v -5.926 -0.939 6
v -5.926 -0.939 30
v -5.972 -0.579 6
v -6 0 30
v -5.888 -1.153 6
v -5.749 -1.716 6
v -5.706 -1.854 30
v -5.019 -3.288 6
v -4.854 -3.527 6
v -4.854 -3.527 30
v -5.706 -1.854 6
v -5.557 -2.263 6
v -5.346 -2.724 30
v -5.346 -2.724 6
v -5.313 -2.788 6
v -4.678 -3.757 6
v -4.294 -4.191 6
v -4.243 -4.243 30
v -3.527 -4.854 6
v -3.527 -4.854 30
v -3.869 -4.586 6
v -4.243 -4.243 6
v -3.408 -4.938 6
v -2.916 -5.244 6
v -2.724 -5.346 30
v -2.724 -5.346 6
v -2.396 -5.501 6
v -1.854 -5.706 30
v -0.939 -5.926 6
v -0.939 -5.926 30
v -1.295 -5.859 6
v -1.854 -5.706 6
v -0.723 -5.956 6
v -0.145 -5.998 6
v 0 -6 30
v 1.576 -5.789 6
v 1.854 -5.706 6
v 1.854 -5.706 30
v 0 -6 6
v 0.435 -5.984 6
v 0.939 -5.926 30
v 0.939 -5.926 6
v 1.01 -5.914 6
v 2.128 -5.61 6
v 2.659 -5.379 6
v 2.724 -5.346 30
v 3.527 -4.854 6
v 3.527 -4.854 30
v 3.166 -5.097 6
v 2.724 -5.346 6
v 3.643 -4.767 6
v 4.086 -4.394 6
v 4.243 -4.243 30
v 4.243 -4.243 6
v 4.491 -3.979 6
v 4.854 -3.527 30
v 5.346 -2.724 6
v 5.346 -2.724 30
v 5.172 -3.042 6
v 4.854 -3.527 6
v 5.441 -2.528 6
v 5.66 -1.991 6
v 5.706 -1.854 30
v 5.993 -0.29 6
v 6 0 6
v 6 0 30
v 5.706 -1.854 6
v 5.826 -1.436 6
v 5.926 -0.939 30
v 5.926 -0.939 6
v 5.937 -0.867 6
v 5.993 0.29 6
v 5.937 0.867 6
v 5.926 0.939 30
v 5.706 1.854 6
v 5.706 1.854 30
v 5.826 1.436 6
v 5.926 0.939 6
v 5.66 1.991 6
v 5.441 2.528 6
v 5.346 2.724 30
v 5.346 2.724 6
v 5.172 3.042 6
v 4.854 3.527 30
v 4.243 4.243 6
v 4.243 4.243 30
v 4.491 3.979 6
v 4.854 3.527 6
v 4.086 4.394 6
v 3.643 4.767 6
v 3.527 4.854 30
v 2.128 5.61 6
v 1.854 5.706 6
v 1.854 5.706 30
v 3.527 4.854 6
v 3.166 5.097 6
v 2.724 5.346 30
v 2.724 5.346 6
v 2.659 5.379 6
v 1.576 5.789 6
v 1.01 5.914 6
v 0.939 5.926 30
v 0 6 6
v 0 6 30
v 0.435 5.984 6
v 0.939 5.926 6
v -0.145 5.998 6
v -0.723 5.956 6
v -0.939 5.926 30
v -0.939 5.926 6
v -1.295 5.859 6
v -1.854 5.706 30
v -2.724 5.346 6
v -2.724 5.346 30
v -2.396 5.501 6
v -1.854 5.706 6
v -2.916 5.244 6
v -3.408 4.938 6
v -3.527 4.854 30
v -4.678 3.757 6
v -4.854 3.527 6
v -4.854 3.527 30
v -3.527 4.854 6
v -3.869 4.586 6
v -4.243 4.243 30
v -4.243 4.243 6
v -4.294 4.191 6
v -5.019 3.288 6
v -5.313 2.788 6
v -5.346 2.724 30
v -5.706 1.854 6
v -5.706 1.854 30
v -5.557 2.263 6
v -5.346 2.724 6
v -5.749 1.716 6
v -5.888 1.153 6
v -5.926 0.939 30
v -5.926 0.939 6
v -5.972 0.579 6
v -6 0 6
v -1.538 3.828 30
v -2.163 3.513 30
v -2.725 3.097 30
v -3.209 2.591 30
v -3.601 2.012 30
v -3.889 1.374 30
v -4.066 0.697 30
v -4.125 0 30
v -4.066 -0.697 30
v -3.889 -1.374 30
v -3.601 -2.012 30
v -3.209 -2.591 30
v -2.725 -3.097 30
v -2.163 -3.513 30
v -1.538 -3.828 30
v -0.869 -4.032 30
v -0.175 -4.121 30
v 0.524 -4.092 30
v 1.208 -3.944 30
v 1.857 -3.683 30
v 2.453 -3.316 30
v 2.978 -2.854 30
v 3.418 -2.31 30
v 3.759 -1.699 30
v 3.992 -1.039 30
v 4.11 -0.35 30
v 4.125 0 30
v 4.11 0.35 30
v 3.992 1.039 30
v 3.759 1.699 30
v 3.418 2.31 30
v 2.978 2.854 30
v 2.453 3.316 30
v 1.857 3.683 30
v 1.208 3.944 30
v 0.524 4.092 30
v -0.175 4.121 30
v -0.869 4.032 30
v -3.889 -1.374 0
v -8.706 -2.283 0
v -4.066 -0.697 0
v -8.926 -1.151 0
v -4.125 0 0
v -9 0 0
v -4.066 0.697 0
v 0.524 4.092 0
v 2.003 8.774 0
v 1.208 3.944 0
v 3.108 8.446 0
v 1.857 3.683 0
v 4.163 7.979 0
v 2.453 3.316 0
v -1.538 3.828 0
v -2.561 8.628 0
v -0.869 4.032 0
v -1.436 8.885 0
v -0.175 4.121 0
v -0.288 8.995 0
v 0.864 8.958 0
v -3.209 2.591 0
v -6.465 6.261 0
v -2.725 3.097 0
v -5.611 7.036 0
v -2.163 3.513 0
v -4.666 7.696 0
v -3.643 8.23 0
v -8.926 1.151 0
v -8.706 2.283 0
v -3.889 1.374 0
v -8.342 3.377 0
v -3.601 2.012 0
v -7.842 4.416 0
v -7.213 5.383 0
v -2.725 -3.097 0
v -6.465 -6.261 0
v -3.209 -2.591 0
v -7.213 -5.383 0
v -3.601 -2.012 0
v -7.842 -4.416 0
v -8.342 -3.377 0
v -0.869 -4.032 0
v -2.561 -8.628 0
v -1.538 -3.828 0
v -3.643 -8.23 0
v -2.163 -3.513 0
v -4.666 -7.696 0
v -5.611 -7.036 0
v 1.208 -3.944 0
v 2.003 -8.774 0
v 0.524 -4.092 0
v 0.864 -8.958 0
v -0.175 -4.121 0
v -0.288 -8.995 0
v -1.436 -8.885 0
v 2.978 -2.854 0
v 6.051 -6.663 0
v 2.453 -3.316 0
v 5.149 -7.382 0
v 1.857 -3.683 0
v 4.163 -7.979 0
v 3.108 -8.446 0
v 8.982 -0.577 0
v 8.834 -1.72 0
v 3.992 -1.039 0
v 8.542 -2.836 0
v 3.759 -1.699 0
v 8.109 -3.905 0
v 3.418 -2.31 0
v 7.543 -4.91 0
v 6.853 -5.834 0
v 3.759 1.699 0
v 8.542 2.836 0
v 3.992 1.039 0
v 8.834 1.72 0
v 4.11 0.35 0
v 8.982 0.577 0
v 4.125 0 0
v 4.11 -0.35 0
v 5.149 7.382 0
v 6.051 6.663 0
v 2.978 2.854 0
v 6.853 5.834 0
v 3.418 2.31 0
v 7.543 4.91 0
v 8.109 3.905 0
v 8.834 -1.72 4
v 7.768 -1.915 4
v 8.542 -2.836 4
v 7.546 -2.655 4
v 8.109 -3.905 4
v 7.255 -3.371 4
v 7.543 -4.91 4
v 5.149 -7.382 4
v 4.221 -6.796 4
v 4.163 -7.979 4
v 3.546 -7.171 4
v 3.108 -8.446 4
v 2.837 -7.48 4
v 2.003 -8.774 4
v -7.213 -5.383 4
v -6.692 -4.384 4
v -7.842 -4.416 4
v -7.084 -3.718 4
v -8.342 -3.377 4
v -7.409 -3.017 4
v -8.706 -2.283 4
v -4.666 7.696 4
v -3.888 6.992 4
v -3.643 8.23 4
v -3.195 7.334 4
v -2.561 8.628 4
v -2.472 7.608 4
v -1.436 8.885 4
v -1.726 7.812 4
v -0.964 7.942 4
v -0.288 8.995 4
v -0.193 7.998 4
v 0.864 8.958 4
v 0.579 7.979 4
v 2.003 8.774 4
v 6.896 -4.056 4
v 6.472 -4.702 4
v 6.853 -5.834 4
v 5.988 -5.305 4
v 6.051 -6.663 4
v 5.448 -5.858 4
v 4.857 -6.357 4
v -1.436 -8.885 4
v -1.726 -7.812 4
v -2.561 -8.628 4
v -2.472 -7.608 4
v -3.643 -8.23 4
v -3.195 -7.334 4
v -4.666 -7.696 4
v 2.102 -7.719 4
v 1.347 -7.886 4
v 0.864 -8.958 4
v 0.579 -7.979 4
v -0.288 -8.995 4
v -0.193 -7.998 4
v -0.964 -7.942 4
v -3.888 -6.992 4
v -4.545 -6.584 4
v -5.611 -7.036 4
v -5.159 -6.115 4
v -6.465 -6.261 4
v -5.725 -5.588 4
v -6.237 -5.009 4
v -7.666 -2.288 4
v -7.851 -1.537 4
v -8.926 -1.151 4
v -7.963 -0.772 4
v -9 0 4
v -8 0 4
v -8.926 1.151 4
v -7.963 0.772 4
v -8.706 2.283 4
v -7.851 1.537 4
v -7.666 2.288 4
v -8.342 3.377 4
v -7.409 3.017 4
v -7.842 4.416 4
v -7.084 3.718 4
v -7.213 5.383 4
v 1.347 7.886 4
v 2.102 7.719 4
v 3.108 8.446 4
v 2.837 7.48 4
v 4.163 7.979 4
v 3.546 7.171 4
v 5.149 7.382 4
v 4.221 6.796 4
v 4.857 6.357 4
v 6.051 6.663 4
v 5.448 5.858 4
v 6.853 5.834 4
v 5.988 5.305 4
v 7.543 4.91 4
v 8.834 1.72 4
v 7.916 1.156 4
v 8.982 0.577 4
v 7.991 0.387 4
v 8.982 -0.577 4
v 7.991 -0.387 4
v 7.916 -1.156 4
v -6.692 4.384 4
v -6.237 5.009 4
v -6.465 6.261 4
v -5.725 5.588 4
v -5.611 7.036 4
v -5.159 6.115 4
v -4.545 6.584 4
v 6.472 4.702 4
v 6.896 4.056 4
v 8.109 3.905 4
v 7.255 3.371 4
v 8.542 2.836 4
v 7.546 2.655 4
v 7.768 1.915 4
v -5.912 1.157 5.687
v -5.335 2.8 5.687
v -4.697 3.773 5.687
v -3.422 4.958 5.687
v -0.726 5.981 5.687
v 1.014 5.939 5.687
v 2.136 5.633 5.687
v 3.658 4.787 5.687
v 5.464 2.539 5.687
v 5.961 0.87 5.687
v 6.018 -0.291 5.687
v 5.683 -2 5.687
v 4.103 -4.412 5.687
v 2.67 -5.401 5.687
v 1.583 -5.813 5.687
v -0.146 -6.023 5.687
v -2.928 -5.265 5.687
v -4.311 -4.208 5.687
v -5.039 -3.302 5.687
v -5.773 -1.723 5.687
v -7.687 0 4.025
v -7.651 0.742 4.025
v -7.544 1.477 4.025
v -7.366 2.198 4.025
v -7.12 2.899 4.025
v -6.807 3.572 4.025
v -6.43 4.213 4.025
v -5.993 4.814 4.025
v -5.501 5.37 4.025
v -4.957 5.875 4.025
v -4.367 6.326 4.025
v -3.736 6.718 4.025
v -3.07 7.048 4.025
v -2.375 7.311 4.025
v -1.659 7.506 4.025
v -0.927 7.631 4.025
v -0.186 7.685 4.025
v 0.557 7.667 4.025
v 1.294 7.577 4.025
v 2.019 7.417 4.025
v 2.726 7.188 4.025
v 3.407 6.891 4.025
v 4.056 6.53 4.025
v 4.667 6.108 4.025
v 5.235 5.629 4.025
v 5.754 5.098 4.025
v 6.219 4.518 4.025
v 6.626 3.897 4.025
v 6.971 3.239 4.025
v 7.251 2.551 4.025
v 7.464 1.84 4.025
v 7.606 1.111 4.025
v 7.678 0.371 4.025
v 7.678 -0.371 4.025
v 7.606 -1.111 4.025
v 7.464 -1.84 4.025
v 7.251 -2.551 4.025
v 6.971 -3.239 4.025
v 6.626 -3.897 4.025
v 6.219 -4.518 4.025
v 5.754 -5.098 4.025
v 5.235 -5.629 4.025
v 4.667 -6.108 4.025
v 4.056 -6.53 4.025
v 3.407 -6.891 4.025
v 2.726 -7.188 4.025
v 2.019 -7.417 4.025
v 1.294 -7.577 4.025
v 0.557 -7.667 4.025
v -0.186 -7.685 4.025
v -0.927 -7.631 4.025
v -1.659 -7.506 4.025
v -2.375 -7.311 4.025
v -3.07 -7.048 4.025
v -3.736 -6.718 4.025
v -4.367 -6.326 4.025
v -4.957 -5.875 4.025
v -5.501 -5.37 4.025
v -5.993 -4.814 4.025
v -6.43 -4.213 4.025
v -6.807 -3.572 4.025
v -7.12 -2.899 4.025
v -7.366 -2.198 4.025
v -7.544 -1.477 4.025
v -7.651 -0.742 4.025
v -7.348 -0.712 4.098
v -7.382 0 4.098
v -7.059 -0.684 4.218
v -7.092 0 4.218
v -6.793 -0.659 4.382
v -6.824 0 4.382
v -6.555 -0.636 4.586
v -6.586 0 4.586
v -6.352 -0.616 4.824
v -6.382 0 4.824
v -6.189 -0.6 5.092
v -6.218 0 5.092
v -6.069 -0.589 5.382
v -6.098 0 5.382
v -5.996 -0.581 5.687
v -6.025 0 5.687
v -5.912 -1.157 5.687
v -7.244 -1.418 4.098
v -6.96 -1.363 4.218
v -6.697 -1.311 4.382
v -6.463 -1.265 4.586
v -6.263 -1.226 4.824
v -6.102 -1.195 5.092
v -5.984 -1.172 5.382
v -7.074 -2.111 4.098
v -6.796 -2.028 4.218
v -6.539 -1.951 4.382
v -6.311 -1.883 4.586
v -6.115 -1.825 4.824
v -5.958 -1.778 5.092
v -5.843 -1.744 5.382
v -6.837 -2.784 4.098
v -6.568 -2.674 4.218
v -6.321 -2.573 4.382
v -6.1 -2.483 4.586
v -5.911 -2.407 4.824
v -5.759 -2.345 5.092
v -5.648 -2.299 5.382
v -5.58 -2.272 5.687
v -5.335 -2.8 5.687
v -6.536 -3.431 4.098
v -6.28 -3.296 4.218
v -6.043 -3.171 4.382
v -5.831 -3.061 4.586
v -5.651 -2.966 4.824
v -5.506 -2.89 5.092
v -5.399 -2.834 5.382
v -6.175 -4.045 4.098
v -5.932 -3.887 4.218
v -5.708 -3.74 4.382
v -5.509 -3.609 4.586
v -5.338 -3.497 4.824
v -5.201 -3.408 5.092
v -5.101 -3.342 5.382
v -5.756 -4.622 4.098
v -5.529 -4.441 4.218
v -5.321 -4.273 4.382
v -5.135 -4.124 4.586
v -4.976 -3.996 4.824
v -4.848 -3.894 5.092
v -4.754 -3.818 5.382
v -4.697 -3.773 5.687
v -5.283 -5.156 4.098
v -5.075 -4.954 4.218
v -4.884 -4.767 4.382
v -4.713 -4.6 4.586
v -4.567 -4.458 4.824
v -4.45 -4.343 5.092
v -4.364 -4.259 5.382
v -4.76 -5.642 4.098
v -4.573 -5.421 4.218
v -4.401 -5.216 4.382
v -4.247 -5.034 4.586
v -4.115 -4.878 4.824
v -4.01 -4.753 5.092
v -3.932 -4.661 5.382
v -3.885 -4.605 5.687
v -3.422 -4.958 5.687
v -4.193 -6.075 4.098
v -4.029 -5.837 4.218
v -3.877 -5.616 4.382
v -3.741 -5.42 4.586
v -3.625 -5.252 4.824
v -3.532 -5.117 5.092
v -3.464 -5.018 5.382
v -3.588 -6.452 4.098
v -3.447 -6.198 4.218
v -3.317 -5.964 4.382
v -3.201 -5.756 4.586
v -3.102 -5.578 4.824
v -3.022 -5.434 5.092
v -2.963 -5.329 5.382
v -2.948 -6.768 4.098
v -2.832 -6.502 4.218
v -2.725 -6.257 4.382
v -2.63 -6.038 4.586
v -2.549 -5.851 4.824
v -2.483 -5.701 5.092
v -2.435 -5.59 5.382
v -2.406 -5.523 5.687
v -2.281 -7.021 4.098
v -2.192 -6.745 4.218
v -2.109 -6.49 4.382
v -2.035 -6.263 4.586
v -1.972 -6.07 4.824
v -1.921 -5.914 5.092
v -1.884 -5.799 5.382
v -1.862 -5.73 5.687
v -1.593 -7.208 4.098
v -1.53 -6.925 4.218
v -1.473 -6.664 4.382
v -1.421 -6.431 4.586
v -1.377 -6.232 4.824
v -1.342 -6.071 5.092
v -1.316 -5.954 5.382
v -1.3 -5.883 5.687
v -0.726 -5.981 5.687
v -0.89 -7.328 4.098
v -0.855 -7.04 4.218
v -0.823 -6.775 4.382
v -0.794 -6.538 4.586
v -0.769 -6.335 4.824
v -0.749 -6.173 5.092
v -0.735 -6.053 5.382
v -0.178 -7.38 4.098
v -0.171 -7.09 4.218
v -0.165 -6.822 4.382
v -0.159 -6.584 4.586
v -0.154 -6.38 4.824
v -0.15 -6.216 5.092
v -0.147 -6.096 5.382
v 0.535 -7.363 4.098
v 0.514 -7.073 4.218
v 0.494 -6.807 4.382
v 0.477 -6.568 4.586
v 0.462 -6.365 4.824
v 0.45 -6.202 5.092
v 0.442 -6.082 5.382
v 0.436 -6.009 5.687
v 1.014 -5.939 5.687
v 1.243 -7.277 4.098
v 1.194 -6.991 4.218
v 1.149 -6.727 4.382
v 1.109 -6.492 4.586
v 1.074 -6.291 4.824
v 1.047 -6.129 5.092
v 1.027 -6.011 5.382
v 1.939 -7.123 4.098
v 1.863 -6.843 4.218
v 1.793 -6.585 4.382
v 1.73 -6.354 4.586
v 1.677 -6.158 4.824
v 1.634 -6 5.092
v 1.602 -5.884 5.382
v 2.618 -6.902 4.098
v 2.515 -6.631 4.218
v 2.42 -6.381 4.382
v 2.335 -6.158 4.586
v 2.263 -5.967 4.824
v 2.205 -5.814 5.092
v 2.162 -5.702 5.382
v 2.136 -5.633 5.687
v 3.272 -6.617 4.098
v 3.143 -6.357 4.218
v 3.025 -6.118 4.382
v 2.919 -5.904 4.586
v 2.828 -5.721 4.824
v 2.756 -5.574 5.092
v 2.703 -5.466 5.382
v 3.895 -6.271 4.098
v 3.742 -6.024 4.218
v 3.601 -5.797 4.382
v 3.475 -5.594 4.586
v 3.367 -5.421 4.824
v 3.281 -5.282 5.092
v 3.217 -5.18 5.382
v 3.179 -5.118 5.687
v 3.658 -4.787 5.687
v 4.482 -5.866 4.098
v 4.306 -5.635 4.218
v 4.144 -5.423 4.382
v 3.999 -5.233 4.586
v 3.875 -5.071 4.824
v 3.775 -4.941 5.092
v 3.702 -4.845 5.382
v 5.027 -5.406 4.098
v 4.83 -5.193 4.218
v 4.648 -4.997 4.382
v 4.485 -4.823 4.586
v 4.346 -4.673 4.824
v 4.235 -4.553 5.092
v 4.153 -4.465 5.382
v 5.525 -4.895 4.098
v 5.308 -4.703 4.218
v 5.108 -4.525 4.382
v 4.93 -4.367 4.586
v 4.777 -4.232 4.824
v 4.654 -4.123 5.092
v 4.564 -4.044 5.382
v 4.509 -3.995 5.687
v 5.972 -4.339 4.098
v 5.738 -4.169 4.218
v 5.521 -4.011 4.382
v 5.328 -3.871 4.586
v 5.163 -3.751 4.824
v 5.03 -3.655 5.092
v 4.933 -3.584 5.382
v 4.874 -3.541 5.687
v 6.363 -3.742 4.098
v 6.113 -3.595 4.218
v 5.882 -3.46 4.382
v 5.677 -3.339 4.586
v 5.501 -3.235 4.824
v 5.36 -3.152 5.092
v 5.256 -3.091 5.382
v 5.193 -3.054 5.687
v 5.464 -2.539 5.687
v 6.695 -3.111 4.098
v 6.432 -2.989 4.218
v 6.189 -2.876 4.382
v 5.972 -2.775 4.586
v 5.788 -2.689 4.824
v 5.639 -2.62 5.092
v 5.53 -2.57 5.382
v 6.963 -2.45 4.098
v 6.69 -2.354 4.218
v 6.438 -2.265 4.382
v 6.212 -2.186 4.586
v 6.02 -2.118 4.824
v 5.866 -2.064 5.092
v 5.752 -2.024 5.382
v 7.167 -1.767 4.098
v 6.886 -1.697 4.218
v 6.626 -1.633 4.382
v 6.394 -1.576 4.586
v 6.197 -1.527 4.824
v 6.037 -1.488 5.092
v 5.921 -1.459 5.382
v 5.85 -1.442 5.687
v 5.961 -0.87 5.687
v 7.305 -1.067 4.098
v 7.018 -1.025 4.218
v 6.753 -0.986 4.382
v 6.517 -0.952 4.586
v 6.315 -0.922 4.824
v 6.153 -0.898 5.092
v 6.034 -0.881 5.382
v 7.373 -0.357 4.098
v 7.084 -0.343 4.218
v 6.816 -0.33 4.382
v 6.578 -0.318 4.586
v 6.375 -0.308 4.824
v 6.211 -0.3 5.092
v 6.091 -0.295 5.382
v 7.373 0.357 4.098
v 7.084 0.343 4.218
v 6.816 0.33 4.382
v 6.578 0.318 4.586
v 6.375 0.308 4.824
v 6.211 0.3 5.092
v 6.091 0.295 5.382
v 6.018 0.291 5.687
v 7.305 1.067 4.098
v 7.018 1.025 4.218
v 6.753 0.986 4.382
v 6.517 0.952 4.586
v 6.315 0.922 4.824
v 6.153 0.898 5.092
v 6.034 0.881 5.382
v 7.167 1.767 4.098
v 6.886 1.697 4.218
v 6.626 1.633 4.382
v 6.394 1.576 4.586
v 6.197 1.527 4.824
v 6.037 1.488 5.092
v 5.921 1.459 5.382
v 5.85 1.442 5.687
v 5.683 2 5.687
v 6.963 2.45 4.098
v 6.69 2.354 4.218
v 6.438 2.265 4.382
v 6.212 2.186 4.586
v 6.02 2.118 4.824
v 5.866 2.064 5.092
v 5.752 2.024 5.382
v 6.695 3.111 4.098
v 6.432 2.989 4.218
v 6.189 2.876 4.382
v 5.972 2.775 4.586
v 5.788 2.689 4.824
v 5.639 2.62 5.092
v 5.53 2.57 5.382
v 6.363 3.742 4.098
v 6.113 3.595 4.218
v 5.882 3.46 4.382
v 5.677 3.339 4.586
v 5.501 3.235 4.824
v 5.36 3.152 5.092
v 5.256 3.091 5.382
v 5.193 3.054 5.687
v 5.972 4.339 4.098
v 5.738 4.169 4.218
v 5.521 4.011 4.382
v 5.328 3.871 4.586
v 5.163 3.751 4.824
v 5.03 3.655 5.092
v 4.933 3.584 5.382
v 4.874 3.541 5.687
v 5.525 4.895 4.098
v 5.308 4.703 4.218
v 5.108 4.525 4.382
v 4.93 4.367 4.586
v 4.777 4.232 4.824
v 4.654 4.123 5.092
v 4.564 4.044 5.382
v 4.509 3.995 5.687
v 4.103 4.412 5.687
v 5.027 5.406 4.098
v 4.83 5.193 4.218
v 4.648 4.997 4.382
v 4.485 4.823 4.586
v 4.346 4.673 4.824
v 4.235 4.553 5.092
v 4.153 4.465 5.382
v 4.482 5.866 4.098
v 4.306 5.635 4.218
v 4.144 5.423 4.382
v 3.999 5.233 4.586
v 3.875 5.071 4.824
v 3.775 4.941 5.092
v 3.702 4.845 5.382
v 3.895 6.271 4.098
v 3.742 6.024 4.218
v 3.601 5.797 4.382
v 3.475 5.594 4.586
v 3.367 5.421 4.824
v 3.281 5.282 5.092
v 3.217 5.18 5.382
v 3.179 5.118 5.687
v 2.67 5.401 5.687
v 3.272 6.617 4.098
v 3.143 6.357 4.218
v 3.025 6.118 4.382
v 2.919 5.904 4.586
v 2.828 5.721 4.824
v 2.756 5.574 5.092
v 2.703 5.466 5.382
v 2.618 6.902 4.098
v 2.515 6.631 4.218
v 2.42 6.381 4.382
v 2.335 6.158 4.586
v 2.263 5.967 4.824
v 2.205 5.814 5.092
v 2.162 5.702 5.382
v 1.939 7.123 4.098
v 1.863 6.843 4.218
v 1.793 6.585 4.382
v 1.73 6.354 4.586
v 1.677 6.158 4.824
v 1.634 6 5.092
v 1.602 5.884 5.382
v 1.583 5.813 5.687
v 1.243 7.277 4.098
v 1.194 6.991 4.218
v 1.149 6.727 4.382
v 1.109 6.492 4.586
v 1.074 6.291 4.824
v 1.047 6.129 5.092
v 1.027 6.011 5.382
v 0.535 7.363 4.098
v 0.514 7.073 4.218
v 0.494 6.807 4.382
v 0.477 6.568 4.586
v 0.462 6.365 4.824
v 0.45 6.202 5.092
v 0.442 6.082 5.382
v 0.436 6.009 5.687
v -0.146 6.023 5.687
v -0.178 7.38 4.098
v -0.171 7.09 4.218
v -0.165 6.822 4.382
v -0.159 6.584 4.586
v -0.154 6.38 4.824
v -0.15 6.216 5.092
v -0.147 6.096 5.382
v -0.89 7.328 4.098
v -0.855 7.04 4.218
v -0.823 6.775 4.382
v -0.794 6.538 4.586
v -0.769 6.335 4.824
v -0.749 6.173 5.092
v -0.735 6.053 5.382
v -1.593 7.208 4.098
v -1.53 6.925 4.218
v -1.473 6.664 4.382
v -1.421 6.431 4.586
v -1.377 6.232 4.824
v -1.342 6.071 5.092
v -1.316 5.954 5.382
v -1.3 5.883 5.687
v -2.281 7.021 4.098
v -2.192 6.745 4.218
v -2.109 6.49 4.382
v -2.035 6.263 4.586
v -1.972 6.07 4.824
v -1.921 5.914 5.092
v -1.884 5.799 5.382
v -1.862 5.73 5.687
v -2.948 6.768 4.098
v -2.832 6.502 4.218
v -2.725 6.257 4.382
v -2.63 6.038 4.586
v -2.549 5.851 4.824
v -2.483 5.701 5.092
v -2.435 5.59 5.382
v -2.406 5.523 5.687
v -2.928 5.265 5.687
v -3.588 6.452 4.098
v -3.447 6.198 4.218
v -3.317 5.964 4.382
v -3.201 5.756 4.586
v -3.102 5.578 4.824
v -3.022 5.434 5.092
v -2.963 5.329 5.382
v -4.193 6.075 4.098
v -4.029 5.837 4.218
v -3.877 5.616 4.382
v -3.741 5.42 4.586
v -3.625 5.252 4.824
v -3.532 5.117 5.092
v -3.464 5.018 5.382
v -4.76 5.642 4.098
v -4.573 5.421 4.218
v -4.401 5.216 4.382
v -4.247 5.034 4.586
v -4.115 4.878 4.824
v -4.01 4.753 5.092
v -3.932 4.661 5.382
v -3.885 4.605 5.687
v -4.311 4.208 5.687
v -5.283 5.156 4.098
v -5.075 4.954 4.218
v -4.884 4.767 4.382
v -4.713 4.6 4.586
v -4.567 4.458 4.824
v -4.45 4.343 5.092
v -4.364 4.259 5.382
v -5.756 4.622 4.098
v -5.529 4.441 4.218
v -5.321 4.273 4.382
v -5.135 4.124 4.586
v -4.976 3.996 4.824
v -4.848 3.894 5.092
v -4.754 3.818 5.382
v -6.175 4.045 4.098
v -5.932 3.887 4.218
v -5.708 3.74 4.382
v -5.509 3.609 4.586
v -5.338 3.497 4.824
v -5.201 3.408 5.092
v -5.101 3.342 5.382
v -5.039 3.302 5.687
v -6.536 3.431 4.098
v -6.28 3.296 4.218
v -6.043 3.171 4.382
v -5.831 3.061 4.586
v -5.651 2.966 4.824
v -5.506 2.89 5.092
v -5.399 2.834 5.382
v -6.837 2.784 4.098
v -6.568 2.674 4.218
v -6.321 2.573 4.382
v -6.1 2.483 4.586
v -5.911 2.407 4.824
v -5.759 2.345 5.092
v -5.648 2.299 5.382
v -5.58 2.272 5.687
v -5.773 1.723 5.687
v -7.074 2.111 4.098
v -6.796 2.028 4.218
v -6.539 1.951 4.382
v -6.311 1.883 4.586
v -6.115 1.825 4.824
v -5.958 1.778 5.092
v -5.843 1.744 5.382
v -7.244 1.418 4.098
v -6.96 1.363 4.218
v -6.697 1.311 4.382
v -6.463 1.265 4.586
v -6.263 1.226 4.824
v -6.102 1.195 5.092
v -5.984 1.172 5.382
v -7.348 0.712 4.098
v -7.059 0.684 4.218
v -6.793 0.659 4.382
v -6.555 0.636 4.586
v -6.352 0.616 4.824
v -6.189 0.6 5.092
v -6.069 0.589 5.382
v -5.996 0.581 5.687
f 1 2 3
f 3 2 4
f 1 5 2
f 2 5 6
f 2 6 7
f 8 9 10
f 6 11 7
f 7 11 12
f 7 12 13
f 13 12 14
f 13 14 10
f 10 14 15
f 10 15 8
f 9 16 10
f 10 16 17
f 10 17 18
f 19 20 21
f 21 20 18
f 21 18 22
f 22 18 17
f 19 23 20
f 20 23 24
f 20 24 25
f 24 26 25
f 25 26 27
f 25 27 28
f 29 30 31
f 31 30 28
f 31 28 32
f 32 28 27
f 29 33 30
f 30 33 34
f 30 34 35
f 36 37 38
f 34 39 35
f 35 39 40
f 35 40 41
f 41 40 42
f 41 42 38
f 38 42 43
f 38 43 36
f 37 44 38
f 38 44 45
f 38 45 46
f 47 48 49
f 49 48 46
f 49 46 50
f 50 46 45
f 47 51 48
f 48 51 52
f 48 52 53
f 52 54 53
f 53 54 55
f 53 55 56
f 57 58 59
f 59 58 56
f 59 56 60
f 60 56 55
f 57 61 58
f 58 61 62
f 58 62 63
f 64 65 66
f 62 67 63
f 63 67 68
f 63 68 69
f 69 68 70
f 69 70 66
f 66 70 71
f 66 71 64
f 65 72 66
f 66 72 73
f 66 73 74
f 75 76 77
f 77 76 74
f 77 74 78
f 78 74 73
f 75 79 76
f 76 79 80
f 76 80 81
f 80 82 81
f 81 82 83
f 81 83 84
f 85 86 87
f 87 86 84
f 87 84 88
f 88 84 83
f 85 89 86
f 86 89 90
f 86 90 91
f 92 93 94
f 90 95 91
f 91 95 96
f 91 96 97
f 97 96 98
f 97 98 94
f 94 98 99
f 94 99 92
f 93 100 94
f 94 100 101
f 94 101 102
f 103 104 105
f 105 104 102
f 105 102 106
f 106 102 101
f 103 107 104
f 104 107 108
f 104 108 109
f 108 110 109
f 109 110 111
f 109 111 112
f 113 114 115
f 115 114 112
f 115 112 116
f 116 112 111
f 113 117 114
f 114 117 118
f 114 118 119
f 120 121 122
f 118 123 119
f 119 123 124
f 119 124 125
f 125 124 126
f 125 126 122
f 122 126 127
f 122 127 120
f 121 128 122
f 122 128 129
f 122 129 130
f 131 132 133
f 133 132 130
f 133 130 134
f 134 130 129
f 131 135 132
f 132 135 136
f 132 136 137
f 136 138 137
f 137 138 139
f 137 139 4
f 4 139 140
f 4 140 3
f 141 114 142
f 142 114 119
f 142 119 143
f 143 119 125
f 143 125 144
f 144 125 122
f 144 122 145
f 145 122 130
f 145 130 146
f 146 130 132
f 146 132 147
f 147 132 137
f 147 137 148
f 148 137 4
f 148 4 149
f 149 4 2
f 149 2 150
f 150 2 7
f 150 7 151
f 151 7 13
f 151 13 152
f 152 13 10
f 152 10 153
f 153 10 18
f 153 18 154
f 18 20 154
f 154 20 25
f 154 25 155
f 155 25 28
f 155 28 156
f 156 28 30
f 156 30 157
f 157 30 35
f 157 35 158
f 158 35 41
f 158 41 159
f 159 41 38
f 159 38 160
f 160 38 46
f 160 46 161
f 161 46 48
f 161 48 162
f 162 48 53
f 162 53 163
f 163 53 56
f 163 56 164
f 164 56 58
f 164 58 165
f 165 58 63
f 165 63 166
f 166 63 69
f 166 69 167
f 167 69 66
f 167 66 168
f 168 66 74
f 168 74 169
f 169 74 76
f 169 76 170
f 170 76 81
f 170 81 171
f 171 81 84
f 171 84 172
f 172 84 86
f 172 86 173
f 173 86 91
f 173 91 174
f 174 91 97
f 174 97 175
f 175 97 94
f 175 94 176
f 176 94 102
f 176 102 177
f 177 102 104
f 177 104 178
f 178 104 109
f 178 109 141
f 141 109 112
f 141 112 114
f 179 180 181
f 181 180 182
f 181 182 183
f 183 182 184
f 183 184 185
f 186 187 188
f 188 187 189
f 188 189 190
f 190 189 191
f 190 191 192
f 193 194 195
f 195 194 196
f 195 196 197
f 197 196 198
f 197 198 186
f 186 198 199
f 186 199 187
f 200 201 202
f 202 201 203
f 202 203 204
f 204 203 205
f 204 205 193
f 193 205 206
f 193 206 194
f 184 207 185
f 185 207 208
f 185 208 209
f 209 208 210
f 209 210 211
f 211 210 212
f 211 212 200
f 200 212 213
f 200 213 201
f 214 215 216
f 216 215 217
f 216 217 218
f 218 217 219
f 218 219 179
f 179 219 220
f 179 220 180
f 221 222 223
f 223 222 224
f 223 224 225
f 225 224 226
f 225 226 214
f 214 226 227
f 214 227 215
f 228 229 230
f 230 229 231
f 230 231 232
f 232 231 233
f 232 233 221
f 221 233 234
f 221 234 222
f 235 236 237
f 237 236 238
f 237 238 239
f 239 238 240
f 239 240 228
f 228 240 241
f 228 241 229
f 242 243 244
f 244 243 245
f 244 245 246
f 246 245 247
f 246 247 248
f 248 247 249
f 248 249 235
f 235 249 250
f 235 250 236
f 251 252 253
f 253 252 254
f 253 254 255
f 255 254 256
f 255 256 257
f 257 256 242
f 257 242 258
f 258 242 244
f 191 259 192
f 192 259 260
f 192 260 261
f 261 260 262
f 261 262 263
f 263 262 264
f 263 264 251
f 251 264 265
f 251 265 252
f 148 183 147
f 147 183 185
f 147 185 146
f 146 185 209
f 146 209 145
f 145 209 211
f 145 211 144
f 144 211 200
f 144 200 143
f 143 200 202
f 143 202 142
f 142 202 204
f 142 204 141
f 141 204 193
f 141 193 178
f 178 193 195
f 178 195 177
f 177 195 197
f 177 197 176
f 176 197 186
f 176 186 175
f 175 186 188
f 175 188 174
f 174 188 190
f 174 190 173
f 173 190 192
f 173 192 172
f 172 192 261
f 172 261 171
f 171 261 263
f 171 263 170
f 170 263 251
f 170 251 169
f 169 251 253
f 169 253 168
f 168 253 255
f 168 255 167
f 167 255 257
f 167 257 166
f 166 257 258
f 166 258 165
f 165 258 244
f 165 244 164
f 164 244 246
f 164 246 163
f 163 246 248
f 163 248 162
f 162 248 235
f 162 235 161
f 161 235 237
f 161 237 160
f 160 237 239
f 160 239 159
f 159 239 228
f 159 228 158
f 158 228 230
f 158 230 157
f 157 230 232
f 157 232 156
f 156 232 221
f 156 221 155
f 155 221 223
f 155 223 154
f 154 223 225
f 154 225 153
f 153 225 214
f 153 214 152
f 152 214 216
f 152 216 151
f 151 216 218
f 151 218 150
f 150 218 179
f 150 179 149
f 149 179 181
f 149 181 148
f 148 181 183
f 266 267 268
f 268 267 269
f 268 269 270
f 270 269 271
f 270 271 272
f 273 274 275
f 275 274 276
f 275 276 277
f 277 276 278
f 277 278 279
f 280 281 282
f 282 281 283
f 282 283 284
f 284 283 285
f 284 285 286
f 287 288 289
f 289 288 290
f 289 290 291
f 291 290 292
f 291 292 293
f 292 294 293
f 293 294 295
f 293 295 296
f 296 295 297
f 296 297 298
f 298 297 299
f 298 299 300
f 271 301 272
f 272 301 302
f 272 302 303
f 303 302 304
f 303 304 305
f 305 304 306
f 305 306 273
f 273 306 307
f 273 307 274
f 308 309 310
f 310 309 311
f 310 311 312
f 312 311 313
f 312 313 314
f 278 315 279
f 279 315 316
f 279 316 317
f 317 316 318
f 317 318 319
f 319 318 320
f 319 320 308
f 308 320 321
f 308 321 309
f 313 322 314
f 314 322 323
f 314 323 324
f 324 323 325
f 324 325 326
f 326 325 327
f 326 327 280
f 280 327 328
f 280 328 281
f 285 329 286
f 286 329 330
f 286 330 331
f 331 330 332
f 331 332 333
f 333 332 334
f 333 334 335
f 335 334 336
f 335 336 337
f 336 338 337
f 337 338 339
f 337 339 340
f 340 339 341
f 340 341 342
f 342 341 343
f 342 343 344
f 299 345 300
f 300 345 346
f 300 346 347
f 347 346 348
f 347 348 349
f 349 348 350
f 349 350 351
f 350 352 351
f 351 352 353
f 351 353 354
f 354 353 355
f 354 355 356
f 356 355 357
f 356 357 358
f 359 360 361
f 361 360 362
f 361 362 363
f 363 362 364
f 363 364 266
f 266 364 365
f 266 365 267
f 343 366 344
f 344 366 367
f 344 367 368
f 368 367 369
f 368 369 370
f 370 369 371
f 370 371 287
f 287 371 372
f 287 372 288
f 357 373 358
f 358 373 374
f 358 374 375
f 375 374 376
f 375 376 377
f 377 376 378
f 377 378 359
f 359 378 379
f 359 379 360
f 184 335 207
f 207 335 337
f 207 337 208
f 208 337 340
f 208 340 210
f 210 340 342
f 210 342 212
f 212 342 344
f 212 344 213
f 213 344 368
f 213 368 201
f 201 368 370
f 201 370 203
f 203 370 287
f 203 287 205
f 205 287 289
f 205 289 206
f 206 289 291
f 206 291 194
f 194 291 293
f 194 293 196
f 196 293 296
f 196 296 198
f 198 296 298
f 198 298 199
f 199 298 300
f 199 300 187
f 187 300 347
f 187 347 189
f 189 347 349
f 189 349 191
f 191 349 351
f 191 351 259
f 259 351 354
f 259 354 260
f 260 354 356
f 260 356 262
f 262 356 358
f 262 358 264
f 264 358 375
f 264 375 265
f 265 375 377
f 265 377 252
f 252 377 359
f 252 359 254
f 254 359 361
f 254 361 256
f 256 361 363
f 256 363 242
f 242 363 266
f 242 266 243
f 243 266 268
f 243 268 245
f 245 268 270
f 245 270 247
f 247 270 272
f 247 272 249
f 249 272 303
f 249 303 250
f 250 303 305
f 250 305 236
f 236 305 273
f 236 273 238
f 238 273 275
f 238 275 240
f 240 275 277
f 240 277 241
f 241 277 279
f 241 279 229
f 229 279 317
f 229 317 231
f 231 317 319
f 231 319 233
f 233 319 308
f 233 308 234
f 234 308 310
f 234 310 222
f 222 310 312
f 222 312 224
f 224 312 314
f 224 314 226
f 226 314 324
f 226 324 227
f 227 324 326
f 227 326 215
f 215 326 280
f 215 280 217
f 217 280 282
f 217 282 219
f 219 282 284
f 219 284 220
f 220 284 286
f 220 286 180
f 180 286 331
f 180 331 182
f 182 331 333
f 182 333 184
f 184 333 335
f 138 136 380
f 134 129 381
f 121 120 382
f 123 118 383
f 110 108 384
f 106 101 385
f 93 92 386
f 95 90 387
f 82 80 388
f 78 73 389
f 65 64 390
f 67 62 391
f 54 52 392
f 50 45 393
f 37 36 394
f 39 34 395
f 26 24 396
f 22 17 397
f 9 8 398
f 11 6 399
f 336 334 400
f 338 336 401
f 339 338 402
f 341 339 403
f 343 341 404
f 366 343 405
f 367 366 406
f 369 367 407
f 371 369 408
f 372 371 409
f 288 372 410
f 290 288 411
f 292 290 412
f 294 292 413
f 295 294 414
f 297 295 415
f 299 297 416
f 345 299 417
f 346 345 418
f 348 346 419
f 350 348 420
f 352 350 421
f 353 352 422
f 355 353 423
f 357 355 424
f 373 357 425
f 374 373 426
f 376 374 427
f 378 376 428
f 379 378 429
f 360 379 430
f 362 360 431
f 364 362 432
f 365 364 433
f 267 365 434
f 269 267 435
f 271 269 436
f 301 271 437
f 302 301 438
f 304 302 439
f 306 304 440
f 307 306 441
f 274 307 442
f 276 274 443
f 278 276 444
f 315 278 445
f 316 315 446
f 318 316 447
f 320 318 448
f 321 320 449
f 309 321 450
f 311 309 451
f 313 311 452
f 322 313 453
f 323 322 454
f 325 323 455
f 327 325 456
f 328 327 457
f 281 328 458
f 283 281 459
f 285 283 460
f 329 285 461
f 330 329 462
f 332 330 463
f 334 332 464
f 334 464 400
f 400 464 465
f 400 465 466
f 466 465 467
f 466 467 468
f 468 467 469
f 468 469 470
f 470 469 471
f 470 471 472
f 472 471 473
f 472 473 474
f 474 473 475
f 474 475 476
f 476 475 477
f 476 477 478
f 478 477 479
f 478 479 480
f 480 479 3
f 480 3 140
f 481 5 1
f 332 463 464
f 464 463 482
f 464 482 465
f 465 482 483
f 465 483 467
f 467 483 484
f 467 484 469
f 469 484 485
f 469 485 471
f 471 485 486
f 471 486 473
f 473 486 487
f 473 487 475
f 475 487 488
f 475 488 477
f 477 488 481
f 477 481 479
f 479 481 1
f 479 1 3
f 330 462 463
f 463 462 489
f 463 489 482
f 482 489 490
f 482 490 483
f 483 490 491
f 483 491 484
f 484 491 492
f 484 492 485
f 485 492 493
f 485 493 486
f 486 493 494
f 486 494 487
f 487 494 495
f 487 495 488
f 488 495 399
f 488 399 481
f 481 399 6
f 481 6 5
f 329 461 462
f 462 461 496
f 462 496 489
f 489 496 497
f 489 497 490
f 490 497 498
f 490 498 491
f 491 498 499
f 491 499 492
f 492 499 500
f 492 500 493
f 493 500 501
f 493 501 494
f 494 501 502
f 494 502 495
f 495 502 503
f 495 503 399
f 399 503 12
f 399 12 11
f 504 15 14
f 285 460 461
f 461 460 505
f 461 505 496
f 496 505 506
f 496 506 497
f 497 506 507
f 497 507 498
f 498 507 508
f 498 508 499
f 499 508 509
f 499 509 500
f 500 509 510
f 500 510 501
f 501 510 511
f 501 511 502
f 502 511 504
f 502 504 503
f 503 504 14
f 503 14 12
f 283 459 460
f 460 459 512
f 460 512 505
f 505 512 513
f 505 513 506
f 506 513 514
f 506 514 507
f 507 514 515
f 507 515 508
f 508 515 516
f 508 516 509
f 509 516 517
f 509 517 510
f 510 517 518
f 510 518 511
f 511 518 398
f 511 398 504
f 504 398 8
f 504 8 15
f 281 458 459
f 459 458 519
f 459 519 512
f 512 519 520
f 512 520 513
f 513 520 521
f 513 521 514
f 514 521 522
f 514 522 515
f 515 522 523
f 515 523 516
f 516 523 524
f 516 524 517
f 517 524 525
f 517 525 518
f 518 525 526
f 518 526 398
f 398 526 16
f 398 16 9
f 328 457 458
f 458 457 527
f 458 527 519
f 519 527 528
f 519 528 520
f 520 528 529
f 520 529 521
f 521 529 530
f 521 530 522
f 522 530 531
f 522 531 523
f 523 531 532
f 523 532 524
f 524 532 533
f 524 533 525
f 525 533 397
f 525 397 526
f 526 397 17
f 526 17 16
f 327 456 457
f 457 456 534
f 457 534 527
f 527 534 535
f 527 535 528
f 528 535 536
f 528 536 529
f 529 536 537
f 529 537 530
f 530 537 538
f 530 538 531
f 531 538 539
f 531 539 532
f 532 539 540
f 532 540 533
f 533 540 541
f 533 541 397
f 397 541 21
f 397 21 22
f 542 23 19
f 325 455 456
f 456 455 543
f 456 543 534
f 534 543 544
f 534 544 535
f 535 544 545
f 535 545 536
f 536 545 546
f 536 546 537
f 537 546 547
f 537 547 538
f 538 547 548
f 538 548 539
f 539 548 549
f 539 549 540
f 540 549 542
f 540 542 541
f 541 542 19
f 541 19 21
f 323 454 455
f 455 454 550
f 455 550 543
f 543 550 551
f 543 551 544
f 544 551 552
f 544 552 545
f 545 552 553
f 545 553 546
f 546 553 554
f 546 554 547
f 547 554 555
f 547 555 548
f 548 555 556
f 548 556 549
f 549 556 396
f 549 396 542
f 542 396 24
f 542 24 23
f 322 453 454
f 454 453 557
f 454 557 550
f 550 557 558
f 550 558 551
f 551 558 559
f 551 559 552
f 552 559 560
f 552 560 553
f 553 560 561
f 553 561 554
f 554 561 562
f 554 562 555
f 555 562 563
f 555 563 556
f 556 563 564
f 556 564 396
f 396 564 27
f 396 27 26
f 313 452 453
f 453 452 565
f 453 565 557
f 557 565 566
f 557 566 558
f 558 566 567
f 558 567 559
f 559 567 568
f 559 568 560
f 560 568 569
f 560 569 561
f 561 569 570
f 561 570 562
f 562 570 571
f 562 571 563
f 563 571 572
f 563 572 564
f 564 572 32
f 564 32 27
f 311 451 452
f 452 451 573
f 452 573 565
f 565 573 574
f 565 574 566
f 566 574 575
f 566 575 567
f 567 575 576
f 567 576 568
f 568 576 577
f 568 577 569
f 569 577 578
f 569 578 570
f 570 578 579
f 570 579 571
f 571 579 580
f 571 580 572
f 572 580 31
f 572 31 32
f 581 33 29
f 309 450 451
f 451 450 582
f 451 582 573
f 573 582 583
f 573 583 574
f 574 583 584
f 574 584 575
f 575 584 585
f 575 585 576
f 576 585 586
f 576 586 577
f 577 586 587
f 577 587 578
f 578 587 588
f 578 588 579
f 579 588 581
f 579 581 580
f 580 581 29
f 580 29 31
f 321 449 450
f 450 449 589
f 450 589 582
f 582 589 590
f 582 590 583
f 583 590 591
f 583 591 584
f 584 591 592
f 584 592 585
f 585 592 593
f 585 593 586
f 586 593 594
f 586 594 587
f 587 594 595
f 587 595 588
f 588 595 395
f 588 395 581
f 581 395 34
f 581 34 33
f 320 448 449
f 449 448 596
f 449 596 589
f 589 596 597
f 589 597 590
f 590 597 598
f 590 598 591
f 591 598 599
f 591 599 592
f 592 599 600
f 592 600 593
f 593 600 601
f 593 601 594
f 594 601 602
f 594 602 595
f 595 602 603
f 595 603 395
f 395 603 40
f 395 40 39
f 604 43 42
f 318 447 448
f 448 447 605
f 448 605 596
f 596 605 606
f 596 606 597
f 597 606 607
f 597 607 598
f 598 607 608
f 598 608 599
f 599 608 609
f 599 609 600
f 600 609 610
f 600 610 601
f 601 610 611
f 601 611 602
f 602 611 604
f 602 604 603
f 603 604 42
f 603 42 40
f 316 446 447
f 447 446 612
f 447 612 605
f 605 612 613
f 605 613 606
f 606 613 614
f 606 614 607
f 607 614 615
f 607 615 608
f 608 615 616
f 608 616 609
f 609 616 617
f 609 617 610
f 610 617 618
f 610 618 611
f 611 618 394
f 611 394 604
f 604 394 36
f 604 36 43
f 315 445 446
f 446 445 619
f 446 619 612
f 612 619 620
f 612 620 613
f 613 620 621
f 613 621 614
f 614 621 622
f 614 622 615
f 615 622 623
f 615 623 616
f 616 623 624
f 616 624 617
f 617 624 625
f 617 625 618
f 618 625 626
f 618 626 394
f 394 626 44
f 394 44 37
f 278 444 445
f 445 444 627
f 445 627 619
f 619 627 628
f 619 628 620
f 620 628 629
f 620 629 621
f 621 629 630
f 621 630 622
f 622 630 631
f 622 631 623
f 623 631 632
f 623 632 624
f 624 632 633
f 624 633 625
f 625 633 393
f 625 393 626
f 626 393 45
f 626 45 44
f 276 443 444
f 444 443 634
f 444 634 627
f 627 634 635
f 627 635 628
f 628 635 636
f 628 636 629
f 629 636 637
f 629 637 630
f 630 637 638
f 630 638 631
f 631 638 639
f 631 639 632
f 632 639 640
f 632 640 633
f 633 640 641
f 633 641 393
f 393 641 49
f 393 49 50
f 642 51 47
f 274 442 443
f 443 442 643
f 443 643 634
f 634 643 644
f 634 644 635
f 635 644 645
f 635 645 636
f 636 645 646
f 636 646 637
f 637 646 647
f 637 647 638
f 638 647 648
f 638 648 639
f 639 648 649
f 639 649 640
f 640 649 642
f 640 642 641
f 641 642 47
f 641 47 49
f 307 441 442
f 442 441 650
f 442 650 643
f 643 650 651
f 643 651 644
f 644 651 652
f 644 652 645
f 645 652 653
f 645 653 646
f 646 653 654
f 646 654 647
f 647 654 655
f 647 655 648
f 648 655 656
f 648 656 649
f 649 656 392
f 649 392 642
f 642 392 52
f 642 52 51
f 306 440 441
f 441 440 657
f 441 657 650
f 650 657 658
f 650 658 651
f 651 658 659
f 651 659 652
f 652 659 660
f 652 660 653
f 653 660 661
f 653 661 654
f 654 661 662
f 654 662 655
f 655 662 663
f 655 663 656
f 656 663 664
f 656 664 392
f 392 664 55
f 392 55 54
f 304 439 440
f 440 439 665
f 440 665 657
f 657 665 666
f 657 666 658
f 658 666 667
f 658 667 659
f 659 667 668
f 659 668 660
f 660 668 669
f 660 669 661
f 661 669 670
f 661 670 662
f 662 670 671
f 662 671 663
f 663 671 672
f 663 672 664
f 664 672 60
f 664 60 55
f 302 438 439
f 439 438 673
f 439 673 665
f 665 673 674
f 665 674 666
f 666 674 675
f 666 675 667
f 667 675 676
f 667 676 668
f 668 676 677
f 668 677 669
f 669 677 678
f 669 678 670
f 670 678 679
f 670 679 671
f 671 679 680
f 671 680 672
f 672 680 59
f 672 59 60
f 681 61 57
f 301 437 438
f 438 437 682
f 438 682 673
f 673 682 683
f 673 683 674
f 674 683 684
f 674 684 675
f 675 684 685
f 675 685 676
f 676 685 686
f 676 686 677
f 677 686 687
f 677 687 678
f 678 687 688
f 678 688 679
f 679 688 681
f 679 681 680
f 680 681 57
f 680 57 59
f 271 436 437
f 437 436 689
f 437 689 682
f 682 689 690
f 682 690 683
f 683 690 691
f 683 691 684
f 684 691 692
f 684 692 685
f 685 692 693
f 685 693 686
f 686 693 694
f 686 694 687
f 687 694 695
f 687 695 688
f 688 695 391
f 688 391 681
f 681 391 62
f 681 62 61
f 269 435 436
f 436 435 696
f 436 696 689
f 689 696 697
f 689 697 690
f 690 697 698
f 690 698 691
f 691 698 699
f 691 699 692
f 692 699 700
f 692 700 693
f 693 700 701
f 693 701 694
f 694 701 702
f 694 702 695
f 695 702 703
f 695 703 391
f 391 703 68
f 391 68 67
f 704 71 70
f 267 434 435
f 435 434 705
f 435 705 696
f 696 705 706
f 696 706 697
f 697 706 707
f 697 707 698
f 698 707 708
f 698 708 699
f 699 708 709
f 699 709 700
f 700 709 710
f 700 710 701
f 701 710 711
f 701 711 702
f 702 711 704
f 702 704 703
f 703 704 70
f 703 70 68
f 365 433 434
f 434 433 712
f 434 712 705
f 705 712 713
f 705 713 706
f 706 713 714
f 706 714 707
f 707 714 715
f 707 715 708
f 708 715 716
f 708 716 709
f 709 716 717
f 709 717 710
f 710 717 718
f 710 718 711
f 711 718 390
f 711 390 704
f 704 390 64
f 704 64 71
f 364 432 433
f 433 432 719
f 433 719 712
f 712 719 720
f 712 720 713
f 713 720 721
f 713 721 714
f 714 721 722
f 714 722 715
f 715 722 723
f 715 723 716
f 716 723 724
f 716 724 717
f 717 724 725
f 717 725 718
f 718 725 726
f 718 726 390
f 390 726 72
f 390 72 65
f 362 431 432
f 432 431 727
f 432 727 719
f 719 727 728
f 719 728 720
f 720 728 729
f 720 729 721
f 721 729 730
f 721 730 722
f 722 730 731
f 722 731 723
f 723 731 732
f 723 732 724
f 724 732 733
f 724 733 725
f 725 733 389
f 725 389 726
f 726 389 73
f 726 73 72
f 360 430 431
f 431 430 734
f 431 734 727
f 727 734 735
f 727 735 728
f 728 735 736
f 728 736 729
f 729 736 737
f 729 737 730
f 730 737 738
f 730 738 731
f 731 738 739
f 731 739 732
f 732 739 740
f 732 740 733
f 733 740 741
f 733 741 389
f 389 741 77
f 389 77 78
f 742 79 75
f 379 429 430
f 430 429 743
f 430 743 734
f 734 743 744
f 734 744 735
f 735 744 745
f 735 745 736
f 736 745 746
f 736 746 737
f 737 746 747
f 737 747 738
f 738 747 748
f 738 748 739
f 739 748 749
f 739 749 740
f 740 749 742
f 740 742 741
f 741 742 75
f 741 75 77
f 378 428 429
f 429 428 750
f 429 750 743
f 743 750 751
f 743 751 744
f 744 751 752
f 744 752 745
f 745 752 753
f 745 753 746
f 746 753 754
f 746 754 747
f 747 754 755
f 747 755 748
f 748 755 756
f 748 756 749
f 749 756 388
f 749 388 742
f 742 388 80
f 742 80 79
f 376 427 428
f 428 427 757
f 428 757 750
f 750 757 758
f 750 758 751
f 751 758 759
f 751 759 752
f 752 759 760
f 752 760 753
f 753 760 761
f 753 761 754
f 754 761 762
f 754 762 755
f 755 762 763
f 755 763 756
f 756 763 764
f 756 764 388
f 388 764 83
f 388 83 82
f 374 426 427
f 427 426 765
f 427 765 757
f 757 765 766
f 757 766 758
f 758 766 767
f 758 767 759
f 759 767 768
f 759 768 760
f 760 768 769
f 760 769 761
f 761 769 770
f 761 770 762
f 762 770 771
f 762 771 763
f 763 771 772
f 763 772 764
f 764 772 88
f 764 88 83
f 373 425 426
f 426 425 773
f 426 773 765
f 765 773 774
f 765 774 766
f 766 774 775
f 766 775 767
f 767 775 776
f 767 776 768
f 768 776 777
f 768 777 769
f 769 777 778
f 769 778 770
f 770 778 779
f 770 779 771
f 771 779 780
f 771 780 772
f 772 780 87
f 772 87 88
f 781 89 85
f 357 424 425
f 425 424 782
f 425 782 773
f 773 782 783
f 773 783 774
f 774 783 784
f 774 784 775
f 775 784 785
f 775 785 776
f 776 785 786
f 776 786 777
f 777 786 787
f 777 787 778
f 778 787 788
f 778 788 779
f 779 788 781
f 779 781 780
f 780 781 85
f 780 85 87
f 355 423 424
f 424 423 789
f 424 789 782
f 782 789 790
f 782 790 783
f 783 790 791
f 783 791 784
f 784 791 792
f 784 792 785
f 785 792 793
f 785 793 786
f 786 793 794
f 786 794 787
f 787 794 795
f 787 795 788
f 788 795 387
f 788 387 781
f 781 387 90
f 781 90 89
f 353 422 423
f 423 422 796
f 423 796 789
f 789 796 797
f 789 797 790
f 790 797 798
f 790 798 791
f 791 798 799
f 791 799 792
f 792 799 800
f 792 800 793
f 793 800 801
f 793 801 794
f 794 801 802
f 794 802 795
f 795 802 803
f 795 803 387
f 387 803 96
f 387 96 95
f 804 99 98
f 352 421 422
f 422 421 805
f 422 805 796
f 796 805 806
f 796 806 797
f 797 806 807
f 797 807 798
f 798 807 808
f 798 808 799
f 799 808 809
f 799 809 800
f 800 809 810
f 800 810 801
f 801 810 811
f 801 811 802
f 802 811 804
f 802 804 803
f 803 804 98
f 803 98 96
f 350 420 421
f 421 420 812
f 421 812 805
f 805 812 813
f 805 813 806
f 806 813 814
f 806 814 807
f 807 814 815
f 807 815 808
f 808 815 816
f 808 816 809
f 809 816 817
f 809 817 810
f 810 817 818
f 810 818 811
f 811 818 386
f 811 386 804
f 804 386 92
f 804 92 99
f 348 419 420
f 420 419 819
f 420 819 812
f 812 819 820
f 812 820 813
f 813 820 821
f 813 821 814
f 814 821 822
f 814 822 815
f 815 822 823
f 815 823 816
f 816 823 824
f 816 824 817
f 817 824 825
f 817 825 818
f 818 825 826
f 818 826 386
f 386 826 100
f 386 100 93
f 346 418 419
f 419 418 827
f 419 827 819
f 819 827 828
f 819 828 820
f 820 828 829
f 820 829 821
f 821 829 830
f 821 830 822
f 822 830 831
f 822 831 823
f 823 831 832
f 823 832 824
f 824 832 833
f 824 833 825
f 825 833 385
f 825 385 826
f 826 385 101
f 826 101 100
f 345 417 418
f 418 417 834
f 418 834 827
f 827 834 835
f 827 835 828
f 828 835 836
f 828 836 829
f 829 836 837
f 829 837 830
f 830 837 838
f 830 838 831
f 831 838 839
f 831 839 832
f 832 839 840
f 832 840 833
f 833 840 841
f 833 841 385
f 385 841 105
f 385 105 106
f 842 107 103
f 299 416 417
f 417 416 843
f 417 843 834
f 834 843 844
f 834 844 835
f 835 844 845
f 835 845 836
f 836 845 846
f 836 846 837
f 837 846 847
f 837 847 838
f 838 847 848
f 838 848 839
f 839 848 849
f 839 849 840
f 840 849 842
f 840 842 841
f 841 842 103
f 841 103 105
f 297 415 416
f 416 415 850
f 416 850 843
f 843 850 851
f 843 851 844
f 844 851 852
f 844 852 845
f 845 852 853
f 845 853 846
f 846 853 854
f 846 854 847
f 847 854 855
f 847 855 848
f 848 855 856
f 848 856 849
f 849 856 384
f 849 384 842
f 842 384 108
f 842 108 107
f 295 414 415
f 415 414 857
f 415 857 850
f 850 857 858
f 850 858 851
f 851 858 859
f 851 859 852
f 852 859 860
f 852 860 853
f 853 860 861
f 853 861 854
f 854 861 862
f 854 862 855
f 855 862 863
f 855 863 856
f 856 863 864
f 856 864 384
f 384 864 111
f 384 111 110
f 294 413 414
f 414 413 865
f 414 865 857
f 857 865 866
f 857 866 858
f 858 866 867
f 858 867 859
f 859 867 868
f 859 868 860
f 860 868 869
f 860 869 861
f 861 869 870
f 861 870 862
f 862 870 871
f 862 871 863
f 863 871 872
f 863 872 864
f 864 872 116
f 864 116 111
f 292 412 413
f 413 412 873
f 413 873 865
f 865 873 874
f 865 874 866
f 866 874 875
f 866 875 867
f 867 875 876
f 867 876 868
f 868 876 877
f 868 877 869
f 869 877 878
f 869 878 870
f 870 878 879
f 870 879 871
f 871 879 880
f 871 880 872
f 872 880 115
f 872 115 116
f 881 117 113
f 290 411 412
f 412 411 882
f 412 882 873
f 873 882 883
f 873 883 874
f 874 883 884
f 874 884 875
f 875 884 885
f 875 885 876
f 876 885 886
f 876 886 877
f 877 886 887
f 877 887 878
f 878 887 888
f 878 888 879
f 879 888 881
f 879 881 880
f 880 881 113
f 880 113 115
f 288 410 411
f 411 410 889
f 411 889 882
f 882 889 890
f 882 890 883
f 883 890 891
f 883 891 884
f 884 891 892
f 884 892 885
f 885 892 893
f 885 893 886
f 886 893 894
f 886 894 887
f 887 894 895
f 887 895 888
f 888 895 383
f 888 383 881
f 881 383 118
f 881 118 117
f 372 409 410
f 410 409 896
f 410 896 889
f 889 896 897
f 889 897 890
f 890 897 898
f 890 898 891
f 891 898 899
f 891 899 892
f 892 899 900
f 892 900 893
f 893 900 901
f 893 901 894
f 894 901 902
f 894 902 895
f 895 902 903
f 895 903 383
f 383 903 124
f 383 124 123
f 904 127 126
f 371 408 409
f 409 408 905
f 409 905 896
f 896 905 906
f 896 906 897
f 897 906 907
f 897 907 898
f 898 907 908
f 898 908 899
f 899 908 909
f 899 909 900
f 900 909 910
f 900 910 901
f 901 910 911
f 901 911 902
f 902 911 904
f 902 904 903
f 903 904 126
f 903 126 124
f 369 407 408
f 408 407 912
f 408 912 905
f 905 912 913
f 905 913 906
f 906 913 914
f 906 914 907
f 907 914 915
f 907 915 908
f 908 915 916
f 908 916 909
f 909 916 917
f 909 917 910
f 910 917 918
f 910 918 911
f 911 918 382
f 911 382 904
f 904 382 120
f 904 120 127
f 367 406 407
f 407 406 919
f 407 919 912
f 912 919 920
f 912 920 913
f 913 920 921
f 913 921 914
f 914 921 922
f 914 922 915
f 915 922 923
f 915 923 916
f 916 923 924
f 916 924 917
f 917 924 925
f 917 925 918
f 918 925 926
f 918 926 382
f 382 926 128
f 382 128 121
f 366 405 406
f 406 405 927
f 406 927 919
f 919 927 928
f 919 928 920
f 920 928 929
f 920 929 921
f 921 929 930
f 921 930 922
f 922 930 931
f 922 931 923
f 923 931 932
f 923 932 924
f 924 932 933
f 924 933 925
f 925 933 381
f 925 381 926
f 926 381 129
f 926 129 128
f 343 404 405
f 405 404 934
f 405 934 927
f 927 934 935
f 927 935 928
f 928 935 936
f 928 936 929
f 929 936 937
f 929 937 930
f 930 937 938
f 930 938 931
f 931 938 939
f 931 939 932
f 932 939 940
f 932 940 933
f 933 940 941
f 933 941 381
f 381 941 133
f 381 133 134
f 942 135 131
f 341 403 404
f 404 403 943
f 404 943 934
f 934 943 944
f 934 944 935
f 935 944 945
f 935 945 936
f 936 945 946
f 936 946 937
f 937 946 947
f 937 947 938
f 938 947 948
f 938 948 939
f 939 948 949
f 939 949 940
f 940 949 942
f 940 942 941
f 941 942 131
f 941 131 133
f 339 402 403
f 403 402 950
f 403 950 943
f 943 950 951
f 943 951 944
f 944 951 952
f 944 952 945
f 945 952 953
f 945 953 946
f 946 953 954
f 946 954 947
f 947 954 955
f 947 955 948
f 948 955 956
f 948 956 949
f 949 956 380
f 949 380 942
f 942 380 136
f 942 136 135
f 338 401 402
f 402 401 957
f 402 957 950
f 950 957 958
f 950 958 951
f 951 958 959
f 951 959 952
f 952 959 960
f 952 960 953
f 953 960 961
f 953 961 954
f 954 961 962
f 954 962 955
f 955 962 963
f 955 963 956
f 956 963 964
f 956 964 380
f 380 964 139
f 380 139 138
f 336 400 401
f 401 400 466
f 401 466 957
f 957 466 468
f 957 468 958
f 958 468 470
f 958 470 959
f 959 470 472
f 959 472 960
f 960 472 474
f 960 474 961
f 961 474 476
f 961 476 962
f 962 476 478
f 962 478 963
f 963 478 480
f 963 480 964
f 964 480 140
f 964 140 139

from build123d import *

# Parameters (mm, degrees)
SKETCH1_R           = 6
SKETCH1_R_2         = 4.125
BOSS_EXTRUDE1_DEPTH = 30
SKETCH2_R           = 9
SKETCH2_R_2         = 4.125
BOSS_EXTRUDE2_DEPTH = 4
FILLET1_R           = 2


with BuildPart() as part:
    # Sketch1 → Boss-Extrude1 (new body)
    with BuildSketch(Plane.XY):
        Circle(SKETCH1_R)
        Circle(SKETCH1_R_2, mode=Mode.SUBTRACT)
    extrude(amount=BOSS_EXTRUDE1_DEPTH)

    # Sketch2 → Boss-Extrude2 (add)
    with BuildSketch(Plane(origin=(0, 0, 0), x_dir=(-1, 0, 0), z_dir=(0, 0, -1))):
        Circle(SKETCH2_R)
        with Locations(Location((0, 0, 0), (0, 0, 180))):
            Circle(SKETCH2_R_2, mode=Mode.SUBTRACT)
    extrude(amount=-BOSS_EXTRUDE2_DEPTH)

    # Fillet1
    fillet1_edges = [part.edges().sort_by_distance(p)[0] for p in [
        (-6, 0, 4),
    ]]
    fillet(fillet1_edges, radius=FILLET1_R)


solid = part.part
